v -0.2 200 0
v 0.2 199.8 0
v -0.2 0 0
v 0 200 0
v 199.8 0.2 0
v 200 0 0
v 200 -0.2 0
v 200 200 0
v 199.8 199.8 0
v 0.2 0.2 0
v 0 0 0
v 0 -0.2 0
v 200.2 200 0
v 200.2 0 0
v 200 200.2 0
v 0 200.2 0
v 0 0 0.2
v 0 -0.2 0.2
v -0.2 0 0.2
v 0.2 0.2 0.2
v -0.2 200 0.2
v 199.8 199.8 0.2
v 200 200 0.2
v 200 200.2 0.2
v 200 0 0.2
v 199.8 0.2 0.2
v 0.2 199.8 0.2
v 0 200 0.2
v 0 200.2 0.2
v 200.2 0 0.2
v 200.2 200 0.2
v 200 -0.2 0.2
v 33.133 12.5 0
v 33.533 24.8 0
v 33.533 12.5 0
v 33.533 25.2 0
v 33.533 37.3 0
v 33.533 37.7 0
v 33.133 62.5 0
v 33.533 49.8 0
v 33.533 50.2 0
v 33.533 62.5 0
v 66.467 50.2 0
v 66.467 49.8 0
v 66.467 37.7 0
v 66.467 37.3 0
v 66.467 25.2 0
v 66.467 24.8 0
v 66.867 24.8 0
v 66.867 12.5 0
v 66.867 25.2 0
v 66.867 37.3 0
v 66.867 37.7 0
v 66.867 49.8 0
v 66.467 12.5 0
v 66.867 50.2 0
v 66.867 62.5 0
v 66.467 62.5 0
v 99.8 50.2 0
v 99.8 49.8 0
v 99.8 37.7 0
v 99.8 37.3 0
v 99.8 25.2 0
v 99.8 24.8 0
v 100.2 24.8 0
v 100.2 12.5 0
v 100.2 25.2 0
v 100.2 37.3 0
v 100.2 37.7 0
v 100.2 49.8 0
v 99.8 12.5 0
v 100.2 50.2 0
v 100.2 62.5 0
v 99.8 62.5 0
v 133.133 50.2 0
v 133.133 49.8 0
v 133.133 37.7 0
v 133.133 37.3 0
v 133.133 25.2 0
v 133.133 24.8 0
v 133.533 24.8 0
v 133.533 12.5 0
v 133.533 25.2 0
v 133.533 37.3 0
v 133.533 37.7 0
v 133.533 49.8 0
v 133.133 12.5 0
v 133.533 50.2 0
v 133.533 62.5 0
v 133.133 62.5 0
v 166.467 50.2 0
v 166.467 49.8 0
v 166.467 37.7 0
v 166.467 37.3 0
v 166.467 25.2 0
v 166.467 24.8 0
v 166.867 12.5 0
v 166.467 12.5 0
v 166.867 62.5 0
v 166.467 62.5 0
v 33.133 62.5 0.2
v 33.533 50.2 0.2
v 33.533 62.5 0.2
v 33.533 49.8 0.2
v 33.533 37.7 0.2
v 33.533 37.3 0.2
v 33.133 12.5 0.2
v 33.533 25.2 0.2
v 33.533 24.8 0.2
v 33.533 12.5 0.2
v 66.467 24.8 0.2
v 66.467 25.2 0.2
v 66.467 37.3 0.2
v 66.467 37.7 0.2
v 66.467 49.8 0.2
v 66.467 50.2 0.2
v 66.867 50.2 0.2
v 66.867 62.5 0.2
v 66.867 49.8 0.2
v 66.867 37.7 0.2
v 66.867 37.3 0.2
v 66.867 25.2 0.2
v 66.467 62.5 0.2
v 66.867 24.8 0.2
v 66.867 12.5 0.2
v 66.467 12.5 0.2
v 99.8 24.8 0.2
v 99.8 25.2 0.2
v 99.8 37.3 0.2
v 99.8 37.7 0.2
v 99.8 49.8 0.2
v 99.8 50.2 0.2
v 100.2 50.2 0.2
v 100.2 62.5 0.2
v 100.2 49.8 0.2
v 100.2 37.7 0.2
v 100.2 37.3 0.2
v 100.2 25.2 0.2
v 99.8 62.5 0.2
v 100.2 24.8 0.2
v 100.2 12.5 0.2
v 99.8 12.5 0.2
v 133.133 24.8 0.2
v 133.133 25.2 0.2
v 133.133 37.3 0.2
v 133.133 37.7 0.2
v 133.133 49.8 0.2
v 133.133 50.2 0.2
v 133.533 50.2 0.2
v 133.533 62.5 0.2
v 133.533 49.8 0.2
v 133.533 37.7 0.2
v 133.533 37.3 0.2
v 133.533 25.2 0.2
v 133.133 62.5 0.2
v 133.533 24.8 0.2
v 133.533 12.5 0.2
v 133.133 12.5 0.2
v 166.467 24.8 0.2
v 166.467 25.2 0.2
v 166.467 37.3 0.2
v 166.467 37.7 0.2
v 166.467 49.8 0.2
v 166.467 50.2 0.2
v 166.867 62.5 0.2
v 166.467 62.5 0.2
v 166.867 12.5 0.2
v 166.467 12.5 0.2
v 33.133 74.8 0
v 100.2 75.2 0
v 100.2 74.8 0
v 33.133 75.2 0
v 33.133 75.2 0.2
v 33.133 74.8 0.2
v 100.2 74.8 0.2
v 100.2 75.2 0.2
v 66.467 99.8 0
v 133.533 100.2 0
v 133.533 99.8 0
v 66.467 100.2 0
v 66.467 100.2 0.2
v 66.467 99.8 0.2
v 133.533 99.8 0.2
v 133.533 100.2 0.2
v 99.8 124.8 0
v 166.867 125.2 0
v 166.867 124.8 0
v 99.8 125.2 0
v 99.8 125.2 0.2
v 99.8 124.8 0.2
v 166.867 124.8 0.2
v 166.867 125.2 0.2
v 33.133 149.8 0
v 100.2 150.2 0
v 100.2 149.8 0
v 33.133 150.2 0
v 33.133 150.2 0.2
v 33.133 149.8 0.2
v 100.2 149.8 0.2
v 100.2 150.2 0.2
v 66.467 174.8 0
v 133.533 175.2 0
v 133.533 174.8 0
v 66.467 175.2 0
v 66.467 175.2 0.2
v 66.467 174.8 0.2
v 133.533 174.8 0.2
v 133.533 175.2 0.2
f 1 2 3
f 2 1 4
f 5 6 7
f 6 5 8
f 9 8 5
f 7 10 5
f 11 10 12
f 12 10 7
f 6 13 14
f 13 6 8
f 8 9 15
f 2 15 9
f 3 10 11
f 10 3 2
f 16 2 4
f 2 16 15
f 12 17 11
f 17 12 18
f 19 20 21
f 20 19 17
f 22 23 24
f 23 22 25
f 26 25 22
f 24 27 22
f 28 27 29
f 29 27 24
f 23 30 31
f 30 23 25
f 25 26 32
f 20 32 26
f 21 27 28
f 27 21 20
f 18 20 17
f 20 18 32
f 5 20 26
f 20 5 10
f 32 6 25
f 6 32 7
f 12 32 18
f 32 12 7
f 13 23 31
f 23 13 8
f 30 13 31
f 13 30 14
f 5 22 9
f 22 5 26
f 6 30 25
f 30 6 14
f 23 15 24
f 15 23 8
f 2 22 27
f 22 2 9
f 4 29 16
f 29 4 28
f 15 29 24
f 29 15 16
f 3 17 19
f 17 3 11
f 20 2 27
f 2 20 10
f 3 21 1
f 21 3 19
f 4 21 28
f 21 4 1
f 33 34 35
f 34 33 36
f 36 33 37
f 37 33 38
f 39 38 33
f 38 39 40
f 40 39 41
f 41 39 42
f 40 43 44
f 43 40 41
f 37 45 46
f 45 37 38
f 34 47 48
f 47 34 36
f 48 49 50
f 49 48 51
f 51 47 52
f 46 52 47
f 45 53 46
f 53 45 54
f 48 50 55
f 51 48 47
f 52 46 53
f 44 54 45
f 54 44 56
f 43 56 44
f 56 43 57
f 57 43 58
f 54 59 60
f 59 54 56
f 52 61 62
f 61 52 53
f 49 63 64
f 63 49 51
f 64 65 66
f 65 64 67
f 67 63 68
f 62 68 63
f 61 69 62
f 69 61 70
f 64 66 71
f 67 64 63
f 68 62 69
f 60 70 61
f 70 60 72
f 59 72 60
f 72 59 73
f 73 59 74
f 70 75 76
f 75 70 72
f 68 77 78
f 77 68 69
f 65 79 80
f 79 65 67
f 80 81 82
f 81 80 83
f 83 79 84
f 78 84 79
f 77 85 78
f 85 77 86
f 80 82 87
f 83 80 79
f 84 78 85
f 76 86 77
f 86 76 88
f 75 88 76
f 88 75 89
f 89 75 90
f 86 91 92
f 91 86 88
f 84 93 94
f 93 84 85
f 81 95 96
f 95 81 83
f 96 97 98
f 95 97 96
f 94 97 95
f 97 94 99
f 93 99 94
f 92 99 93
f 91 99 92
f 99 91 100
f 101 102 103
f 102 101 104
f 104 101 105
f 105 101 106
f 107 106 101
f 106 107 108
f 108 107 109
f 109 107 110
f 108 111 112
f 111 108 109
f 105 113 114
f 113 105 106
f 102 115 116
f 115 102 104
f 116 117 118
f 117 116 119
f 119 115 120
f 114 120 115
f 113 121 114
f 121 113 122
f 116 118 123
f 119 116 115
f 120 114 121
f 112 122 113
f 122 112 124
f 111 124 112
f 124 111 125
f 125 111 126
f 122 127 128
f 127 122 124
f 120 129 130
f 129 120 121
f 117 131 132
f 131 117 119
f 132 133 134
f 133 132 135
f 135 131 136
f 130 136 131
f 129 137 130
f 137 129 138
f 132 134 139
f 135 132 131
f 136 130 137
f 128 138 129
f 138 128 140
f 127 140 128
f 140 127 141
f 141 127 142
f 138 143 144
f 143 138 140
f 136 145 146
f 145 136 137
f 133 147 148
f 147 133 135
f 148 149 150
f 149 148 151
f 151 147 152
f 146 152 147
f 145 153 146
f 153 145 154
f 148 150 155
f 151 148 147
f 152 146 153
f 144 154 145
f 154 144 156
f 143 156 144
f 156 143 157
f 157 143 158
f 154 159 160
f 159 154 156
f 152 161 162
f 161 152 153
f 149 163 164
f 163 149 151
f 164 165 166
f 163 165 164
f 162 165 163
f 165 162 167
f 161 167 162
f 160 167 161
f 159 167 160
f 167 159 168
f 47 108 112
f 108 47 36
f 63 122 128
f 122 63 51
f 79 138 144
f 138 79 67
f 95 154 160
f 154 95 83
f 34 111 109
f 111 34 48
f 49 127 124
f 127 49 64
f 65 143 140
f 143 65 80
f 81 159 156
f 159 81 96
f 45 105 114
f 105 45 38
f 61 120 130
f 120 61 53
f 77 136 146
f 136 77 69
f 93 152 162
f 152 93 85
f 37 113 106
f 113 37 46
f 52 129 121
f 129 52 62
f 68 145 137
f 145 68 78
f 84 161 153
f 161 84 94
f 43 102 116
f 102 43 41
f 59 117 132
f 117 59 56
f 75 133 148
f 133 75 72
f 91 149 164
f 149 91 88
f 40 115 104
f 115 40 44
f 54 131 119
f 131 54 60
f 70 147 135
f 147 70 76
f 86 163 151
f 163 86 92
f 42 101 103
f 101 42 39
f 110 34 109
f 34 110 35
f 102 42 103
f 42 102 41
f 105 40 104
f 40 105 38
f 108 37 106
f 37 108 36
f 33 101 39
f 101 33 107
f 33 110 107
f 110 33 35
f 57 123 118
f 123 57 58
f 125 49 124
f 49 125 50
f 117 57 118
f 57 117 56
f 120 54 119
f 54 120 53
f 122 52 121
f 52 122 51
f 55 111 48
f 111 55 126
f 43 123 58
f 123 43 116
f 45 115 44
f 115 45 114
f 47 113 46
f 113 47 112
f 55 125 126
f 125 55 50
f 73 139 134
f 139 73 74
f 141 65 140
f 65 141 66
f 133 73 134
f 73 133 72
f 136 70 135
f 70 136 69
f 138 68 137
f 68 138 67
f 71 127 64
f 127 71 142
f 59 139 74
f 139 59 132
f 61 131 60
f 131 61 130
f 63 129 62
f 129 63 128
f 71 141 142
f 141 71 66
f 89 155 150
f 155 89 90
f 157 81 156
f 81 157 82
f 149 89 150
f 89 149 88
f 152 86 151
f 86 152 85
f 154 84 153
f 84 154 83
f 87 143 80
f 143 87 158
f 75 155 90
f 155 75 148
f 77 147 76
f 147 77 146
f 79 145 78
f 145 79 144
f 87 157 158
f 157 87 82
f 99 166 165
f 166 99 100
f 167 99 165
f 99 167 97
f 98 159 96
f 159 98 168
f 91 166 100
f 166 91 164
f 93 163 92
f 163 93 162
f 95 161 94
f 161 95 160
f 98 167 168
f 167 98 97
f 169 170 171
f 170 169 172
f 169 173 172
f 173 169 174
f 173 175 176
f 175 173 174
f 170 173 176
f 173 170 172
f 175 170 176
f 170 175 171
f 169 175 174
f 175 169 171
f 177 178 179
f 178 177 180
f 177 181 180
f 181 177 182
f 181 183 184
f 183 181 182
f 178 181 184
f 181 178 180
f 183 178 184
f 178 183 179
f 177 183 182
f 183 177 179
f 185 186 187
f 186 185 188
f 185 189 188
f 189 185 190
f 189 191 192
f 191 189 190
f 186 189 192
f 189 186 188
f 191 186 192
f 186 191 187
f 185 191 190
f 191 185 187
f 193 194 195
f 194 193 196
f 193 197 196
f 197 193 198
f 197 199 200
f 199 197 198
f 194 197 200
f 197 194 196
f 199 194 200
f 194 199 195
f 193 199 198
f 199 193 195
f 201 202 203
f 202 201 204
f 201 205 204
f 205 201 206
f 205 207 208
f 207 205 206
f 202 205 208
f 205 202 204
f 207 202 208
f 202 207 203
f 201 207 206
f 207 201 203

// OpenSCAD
/*
 * Test pattern to tune extra unretract length of FDM printers.
 * 
 * (c) 2023 Frank Zechert
 * Distributed under MIT License
 */
 
// Nozzle Size of the printer, and also line width for the test.
nozzle_size = 0.4;
// Height of the first layer.
layer_height = 0.2;
// Width of the test pattern in mm.
pattern_width = 200;
// Length of the test pattern in mm.
pattern_length = 200;
// Number of test retractions.
number_of_retractions = 5;
// Number of test repetitions.
number_of_repetitions = 5;

function direction(value) = 0 == sign(value) ? 1 : sign(value);

module draw_line(from, to) {
    x_distance = to[0] - from[0];
    y_distance = to[1] - from[1];
    
    distance = sqrt(x_distance ^ 2 + y_distance ^ 2);
    angle = distance == 0 ? 0 : 
        (x_distance < 0 ? 180 - asin(y_distance / distance) : asin(y_distance / distance));
    
    echo("Distance x:", x_distance, "Distance y:", y_distance, "Distance:", distance, "Angle:", angle);
    
    linear_extrude(layer_height) {
        translate(from) {
            rotate([0, 0, angle]) {
                translate([0, -nozzle_size / 2]) {
                    square([distance, nozzle_size], false);
                }
            }
        }
    }
}

module outer_perimeter() {
    draw_line([0, 0], [pattern_width, 0]);
    draw_line([pattern_width, 0], [pattern_width, pattern_length]);
    draw_line([pattern_width, pattern_length], [0, pattern_length]);
    draw_line([0, pattern_length], [0, 0]);
}


x_interval = pattern_width / (number_of_retractions + 1);
y_interval = pattern_length / (number_of_repetitions + 3);

module scale() {
    for (x = [1 : number_of_retractions]) {
        draw_line([x * x_interval, y_interval * 0.5], [x * x_interval, y_interval * 2.5]);
        if (x < number_of_retractions) {
            draw_line([x * x_interval, y_interval], [(x + 1) * x_interval, y_interval]);
            draw_line([x * x_interval, y_interval * 1.5], [(x + 1) * x_interval, y_interval * 1.5]);
            draw_line([x * x_interval, y_interval * 2], [(x + 1) * x_interval, y_interval * 2]);
        }
    }
}

module test() {
    for (x = [ 1 : number_of_repetitions]) {
        x_start = x_interval + x_interval * ((x - 1) % 3) - nozzle_size / 2;
        x_end = x_interval * (3 + ((x - 1) % 3)) + nozzle_size / 2;
        y_start = y_interval * (2 + x);
        y_end = y_interval * (2 + x);
        draw_line([x_start, y_start], [x_end, y_end]);
    }
}

outer_perimeter();
scale();
test();
